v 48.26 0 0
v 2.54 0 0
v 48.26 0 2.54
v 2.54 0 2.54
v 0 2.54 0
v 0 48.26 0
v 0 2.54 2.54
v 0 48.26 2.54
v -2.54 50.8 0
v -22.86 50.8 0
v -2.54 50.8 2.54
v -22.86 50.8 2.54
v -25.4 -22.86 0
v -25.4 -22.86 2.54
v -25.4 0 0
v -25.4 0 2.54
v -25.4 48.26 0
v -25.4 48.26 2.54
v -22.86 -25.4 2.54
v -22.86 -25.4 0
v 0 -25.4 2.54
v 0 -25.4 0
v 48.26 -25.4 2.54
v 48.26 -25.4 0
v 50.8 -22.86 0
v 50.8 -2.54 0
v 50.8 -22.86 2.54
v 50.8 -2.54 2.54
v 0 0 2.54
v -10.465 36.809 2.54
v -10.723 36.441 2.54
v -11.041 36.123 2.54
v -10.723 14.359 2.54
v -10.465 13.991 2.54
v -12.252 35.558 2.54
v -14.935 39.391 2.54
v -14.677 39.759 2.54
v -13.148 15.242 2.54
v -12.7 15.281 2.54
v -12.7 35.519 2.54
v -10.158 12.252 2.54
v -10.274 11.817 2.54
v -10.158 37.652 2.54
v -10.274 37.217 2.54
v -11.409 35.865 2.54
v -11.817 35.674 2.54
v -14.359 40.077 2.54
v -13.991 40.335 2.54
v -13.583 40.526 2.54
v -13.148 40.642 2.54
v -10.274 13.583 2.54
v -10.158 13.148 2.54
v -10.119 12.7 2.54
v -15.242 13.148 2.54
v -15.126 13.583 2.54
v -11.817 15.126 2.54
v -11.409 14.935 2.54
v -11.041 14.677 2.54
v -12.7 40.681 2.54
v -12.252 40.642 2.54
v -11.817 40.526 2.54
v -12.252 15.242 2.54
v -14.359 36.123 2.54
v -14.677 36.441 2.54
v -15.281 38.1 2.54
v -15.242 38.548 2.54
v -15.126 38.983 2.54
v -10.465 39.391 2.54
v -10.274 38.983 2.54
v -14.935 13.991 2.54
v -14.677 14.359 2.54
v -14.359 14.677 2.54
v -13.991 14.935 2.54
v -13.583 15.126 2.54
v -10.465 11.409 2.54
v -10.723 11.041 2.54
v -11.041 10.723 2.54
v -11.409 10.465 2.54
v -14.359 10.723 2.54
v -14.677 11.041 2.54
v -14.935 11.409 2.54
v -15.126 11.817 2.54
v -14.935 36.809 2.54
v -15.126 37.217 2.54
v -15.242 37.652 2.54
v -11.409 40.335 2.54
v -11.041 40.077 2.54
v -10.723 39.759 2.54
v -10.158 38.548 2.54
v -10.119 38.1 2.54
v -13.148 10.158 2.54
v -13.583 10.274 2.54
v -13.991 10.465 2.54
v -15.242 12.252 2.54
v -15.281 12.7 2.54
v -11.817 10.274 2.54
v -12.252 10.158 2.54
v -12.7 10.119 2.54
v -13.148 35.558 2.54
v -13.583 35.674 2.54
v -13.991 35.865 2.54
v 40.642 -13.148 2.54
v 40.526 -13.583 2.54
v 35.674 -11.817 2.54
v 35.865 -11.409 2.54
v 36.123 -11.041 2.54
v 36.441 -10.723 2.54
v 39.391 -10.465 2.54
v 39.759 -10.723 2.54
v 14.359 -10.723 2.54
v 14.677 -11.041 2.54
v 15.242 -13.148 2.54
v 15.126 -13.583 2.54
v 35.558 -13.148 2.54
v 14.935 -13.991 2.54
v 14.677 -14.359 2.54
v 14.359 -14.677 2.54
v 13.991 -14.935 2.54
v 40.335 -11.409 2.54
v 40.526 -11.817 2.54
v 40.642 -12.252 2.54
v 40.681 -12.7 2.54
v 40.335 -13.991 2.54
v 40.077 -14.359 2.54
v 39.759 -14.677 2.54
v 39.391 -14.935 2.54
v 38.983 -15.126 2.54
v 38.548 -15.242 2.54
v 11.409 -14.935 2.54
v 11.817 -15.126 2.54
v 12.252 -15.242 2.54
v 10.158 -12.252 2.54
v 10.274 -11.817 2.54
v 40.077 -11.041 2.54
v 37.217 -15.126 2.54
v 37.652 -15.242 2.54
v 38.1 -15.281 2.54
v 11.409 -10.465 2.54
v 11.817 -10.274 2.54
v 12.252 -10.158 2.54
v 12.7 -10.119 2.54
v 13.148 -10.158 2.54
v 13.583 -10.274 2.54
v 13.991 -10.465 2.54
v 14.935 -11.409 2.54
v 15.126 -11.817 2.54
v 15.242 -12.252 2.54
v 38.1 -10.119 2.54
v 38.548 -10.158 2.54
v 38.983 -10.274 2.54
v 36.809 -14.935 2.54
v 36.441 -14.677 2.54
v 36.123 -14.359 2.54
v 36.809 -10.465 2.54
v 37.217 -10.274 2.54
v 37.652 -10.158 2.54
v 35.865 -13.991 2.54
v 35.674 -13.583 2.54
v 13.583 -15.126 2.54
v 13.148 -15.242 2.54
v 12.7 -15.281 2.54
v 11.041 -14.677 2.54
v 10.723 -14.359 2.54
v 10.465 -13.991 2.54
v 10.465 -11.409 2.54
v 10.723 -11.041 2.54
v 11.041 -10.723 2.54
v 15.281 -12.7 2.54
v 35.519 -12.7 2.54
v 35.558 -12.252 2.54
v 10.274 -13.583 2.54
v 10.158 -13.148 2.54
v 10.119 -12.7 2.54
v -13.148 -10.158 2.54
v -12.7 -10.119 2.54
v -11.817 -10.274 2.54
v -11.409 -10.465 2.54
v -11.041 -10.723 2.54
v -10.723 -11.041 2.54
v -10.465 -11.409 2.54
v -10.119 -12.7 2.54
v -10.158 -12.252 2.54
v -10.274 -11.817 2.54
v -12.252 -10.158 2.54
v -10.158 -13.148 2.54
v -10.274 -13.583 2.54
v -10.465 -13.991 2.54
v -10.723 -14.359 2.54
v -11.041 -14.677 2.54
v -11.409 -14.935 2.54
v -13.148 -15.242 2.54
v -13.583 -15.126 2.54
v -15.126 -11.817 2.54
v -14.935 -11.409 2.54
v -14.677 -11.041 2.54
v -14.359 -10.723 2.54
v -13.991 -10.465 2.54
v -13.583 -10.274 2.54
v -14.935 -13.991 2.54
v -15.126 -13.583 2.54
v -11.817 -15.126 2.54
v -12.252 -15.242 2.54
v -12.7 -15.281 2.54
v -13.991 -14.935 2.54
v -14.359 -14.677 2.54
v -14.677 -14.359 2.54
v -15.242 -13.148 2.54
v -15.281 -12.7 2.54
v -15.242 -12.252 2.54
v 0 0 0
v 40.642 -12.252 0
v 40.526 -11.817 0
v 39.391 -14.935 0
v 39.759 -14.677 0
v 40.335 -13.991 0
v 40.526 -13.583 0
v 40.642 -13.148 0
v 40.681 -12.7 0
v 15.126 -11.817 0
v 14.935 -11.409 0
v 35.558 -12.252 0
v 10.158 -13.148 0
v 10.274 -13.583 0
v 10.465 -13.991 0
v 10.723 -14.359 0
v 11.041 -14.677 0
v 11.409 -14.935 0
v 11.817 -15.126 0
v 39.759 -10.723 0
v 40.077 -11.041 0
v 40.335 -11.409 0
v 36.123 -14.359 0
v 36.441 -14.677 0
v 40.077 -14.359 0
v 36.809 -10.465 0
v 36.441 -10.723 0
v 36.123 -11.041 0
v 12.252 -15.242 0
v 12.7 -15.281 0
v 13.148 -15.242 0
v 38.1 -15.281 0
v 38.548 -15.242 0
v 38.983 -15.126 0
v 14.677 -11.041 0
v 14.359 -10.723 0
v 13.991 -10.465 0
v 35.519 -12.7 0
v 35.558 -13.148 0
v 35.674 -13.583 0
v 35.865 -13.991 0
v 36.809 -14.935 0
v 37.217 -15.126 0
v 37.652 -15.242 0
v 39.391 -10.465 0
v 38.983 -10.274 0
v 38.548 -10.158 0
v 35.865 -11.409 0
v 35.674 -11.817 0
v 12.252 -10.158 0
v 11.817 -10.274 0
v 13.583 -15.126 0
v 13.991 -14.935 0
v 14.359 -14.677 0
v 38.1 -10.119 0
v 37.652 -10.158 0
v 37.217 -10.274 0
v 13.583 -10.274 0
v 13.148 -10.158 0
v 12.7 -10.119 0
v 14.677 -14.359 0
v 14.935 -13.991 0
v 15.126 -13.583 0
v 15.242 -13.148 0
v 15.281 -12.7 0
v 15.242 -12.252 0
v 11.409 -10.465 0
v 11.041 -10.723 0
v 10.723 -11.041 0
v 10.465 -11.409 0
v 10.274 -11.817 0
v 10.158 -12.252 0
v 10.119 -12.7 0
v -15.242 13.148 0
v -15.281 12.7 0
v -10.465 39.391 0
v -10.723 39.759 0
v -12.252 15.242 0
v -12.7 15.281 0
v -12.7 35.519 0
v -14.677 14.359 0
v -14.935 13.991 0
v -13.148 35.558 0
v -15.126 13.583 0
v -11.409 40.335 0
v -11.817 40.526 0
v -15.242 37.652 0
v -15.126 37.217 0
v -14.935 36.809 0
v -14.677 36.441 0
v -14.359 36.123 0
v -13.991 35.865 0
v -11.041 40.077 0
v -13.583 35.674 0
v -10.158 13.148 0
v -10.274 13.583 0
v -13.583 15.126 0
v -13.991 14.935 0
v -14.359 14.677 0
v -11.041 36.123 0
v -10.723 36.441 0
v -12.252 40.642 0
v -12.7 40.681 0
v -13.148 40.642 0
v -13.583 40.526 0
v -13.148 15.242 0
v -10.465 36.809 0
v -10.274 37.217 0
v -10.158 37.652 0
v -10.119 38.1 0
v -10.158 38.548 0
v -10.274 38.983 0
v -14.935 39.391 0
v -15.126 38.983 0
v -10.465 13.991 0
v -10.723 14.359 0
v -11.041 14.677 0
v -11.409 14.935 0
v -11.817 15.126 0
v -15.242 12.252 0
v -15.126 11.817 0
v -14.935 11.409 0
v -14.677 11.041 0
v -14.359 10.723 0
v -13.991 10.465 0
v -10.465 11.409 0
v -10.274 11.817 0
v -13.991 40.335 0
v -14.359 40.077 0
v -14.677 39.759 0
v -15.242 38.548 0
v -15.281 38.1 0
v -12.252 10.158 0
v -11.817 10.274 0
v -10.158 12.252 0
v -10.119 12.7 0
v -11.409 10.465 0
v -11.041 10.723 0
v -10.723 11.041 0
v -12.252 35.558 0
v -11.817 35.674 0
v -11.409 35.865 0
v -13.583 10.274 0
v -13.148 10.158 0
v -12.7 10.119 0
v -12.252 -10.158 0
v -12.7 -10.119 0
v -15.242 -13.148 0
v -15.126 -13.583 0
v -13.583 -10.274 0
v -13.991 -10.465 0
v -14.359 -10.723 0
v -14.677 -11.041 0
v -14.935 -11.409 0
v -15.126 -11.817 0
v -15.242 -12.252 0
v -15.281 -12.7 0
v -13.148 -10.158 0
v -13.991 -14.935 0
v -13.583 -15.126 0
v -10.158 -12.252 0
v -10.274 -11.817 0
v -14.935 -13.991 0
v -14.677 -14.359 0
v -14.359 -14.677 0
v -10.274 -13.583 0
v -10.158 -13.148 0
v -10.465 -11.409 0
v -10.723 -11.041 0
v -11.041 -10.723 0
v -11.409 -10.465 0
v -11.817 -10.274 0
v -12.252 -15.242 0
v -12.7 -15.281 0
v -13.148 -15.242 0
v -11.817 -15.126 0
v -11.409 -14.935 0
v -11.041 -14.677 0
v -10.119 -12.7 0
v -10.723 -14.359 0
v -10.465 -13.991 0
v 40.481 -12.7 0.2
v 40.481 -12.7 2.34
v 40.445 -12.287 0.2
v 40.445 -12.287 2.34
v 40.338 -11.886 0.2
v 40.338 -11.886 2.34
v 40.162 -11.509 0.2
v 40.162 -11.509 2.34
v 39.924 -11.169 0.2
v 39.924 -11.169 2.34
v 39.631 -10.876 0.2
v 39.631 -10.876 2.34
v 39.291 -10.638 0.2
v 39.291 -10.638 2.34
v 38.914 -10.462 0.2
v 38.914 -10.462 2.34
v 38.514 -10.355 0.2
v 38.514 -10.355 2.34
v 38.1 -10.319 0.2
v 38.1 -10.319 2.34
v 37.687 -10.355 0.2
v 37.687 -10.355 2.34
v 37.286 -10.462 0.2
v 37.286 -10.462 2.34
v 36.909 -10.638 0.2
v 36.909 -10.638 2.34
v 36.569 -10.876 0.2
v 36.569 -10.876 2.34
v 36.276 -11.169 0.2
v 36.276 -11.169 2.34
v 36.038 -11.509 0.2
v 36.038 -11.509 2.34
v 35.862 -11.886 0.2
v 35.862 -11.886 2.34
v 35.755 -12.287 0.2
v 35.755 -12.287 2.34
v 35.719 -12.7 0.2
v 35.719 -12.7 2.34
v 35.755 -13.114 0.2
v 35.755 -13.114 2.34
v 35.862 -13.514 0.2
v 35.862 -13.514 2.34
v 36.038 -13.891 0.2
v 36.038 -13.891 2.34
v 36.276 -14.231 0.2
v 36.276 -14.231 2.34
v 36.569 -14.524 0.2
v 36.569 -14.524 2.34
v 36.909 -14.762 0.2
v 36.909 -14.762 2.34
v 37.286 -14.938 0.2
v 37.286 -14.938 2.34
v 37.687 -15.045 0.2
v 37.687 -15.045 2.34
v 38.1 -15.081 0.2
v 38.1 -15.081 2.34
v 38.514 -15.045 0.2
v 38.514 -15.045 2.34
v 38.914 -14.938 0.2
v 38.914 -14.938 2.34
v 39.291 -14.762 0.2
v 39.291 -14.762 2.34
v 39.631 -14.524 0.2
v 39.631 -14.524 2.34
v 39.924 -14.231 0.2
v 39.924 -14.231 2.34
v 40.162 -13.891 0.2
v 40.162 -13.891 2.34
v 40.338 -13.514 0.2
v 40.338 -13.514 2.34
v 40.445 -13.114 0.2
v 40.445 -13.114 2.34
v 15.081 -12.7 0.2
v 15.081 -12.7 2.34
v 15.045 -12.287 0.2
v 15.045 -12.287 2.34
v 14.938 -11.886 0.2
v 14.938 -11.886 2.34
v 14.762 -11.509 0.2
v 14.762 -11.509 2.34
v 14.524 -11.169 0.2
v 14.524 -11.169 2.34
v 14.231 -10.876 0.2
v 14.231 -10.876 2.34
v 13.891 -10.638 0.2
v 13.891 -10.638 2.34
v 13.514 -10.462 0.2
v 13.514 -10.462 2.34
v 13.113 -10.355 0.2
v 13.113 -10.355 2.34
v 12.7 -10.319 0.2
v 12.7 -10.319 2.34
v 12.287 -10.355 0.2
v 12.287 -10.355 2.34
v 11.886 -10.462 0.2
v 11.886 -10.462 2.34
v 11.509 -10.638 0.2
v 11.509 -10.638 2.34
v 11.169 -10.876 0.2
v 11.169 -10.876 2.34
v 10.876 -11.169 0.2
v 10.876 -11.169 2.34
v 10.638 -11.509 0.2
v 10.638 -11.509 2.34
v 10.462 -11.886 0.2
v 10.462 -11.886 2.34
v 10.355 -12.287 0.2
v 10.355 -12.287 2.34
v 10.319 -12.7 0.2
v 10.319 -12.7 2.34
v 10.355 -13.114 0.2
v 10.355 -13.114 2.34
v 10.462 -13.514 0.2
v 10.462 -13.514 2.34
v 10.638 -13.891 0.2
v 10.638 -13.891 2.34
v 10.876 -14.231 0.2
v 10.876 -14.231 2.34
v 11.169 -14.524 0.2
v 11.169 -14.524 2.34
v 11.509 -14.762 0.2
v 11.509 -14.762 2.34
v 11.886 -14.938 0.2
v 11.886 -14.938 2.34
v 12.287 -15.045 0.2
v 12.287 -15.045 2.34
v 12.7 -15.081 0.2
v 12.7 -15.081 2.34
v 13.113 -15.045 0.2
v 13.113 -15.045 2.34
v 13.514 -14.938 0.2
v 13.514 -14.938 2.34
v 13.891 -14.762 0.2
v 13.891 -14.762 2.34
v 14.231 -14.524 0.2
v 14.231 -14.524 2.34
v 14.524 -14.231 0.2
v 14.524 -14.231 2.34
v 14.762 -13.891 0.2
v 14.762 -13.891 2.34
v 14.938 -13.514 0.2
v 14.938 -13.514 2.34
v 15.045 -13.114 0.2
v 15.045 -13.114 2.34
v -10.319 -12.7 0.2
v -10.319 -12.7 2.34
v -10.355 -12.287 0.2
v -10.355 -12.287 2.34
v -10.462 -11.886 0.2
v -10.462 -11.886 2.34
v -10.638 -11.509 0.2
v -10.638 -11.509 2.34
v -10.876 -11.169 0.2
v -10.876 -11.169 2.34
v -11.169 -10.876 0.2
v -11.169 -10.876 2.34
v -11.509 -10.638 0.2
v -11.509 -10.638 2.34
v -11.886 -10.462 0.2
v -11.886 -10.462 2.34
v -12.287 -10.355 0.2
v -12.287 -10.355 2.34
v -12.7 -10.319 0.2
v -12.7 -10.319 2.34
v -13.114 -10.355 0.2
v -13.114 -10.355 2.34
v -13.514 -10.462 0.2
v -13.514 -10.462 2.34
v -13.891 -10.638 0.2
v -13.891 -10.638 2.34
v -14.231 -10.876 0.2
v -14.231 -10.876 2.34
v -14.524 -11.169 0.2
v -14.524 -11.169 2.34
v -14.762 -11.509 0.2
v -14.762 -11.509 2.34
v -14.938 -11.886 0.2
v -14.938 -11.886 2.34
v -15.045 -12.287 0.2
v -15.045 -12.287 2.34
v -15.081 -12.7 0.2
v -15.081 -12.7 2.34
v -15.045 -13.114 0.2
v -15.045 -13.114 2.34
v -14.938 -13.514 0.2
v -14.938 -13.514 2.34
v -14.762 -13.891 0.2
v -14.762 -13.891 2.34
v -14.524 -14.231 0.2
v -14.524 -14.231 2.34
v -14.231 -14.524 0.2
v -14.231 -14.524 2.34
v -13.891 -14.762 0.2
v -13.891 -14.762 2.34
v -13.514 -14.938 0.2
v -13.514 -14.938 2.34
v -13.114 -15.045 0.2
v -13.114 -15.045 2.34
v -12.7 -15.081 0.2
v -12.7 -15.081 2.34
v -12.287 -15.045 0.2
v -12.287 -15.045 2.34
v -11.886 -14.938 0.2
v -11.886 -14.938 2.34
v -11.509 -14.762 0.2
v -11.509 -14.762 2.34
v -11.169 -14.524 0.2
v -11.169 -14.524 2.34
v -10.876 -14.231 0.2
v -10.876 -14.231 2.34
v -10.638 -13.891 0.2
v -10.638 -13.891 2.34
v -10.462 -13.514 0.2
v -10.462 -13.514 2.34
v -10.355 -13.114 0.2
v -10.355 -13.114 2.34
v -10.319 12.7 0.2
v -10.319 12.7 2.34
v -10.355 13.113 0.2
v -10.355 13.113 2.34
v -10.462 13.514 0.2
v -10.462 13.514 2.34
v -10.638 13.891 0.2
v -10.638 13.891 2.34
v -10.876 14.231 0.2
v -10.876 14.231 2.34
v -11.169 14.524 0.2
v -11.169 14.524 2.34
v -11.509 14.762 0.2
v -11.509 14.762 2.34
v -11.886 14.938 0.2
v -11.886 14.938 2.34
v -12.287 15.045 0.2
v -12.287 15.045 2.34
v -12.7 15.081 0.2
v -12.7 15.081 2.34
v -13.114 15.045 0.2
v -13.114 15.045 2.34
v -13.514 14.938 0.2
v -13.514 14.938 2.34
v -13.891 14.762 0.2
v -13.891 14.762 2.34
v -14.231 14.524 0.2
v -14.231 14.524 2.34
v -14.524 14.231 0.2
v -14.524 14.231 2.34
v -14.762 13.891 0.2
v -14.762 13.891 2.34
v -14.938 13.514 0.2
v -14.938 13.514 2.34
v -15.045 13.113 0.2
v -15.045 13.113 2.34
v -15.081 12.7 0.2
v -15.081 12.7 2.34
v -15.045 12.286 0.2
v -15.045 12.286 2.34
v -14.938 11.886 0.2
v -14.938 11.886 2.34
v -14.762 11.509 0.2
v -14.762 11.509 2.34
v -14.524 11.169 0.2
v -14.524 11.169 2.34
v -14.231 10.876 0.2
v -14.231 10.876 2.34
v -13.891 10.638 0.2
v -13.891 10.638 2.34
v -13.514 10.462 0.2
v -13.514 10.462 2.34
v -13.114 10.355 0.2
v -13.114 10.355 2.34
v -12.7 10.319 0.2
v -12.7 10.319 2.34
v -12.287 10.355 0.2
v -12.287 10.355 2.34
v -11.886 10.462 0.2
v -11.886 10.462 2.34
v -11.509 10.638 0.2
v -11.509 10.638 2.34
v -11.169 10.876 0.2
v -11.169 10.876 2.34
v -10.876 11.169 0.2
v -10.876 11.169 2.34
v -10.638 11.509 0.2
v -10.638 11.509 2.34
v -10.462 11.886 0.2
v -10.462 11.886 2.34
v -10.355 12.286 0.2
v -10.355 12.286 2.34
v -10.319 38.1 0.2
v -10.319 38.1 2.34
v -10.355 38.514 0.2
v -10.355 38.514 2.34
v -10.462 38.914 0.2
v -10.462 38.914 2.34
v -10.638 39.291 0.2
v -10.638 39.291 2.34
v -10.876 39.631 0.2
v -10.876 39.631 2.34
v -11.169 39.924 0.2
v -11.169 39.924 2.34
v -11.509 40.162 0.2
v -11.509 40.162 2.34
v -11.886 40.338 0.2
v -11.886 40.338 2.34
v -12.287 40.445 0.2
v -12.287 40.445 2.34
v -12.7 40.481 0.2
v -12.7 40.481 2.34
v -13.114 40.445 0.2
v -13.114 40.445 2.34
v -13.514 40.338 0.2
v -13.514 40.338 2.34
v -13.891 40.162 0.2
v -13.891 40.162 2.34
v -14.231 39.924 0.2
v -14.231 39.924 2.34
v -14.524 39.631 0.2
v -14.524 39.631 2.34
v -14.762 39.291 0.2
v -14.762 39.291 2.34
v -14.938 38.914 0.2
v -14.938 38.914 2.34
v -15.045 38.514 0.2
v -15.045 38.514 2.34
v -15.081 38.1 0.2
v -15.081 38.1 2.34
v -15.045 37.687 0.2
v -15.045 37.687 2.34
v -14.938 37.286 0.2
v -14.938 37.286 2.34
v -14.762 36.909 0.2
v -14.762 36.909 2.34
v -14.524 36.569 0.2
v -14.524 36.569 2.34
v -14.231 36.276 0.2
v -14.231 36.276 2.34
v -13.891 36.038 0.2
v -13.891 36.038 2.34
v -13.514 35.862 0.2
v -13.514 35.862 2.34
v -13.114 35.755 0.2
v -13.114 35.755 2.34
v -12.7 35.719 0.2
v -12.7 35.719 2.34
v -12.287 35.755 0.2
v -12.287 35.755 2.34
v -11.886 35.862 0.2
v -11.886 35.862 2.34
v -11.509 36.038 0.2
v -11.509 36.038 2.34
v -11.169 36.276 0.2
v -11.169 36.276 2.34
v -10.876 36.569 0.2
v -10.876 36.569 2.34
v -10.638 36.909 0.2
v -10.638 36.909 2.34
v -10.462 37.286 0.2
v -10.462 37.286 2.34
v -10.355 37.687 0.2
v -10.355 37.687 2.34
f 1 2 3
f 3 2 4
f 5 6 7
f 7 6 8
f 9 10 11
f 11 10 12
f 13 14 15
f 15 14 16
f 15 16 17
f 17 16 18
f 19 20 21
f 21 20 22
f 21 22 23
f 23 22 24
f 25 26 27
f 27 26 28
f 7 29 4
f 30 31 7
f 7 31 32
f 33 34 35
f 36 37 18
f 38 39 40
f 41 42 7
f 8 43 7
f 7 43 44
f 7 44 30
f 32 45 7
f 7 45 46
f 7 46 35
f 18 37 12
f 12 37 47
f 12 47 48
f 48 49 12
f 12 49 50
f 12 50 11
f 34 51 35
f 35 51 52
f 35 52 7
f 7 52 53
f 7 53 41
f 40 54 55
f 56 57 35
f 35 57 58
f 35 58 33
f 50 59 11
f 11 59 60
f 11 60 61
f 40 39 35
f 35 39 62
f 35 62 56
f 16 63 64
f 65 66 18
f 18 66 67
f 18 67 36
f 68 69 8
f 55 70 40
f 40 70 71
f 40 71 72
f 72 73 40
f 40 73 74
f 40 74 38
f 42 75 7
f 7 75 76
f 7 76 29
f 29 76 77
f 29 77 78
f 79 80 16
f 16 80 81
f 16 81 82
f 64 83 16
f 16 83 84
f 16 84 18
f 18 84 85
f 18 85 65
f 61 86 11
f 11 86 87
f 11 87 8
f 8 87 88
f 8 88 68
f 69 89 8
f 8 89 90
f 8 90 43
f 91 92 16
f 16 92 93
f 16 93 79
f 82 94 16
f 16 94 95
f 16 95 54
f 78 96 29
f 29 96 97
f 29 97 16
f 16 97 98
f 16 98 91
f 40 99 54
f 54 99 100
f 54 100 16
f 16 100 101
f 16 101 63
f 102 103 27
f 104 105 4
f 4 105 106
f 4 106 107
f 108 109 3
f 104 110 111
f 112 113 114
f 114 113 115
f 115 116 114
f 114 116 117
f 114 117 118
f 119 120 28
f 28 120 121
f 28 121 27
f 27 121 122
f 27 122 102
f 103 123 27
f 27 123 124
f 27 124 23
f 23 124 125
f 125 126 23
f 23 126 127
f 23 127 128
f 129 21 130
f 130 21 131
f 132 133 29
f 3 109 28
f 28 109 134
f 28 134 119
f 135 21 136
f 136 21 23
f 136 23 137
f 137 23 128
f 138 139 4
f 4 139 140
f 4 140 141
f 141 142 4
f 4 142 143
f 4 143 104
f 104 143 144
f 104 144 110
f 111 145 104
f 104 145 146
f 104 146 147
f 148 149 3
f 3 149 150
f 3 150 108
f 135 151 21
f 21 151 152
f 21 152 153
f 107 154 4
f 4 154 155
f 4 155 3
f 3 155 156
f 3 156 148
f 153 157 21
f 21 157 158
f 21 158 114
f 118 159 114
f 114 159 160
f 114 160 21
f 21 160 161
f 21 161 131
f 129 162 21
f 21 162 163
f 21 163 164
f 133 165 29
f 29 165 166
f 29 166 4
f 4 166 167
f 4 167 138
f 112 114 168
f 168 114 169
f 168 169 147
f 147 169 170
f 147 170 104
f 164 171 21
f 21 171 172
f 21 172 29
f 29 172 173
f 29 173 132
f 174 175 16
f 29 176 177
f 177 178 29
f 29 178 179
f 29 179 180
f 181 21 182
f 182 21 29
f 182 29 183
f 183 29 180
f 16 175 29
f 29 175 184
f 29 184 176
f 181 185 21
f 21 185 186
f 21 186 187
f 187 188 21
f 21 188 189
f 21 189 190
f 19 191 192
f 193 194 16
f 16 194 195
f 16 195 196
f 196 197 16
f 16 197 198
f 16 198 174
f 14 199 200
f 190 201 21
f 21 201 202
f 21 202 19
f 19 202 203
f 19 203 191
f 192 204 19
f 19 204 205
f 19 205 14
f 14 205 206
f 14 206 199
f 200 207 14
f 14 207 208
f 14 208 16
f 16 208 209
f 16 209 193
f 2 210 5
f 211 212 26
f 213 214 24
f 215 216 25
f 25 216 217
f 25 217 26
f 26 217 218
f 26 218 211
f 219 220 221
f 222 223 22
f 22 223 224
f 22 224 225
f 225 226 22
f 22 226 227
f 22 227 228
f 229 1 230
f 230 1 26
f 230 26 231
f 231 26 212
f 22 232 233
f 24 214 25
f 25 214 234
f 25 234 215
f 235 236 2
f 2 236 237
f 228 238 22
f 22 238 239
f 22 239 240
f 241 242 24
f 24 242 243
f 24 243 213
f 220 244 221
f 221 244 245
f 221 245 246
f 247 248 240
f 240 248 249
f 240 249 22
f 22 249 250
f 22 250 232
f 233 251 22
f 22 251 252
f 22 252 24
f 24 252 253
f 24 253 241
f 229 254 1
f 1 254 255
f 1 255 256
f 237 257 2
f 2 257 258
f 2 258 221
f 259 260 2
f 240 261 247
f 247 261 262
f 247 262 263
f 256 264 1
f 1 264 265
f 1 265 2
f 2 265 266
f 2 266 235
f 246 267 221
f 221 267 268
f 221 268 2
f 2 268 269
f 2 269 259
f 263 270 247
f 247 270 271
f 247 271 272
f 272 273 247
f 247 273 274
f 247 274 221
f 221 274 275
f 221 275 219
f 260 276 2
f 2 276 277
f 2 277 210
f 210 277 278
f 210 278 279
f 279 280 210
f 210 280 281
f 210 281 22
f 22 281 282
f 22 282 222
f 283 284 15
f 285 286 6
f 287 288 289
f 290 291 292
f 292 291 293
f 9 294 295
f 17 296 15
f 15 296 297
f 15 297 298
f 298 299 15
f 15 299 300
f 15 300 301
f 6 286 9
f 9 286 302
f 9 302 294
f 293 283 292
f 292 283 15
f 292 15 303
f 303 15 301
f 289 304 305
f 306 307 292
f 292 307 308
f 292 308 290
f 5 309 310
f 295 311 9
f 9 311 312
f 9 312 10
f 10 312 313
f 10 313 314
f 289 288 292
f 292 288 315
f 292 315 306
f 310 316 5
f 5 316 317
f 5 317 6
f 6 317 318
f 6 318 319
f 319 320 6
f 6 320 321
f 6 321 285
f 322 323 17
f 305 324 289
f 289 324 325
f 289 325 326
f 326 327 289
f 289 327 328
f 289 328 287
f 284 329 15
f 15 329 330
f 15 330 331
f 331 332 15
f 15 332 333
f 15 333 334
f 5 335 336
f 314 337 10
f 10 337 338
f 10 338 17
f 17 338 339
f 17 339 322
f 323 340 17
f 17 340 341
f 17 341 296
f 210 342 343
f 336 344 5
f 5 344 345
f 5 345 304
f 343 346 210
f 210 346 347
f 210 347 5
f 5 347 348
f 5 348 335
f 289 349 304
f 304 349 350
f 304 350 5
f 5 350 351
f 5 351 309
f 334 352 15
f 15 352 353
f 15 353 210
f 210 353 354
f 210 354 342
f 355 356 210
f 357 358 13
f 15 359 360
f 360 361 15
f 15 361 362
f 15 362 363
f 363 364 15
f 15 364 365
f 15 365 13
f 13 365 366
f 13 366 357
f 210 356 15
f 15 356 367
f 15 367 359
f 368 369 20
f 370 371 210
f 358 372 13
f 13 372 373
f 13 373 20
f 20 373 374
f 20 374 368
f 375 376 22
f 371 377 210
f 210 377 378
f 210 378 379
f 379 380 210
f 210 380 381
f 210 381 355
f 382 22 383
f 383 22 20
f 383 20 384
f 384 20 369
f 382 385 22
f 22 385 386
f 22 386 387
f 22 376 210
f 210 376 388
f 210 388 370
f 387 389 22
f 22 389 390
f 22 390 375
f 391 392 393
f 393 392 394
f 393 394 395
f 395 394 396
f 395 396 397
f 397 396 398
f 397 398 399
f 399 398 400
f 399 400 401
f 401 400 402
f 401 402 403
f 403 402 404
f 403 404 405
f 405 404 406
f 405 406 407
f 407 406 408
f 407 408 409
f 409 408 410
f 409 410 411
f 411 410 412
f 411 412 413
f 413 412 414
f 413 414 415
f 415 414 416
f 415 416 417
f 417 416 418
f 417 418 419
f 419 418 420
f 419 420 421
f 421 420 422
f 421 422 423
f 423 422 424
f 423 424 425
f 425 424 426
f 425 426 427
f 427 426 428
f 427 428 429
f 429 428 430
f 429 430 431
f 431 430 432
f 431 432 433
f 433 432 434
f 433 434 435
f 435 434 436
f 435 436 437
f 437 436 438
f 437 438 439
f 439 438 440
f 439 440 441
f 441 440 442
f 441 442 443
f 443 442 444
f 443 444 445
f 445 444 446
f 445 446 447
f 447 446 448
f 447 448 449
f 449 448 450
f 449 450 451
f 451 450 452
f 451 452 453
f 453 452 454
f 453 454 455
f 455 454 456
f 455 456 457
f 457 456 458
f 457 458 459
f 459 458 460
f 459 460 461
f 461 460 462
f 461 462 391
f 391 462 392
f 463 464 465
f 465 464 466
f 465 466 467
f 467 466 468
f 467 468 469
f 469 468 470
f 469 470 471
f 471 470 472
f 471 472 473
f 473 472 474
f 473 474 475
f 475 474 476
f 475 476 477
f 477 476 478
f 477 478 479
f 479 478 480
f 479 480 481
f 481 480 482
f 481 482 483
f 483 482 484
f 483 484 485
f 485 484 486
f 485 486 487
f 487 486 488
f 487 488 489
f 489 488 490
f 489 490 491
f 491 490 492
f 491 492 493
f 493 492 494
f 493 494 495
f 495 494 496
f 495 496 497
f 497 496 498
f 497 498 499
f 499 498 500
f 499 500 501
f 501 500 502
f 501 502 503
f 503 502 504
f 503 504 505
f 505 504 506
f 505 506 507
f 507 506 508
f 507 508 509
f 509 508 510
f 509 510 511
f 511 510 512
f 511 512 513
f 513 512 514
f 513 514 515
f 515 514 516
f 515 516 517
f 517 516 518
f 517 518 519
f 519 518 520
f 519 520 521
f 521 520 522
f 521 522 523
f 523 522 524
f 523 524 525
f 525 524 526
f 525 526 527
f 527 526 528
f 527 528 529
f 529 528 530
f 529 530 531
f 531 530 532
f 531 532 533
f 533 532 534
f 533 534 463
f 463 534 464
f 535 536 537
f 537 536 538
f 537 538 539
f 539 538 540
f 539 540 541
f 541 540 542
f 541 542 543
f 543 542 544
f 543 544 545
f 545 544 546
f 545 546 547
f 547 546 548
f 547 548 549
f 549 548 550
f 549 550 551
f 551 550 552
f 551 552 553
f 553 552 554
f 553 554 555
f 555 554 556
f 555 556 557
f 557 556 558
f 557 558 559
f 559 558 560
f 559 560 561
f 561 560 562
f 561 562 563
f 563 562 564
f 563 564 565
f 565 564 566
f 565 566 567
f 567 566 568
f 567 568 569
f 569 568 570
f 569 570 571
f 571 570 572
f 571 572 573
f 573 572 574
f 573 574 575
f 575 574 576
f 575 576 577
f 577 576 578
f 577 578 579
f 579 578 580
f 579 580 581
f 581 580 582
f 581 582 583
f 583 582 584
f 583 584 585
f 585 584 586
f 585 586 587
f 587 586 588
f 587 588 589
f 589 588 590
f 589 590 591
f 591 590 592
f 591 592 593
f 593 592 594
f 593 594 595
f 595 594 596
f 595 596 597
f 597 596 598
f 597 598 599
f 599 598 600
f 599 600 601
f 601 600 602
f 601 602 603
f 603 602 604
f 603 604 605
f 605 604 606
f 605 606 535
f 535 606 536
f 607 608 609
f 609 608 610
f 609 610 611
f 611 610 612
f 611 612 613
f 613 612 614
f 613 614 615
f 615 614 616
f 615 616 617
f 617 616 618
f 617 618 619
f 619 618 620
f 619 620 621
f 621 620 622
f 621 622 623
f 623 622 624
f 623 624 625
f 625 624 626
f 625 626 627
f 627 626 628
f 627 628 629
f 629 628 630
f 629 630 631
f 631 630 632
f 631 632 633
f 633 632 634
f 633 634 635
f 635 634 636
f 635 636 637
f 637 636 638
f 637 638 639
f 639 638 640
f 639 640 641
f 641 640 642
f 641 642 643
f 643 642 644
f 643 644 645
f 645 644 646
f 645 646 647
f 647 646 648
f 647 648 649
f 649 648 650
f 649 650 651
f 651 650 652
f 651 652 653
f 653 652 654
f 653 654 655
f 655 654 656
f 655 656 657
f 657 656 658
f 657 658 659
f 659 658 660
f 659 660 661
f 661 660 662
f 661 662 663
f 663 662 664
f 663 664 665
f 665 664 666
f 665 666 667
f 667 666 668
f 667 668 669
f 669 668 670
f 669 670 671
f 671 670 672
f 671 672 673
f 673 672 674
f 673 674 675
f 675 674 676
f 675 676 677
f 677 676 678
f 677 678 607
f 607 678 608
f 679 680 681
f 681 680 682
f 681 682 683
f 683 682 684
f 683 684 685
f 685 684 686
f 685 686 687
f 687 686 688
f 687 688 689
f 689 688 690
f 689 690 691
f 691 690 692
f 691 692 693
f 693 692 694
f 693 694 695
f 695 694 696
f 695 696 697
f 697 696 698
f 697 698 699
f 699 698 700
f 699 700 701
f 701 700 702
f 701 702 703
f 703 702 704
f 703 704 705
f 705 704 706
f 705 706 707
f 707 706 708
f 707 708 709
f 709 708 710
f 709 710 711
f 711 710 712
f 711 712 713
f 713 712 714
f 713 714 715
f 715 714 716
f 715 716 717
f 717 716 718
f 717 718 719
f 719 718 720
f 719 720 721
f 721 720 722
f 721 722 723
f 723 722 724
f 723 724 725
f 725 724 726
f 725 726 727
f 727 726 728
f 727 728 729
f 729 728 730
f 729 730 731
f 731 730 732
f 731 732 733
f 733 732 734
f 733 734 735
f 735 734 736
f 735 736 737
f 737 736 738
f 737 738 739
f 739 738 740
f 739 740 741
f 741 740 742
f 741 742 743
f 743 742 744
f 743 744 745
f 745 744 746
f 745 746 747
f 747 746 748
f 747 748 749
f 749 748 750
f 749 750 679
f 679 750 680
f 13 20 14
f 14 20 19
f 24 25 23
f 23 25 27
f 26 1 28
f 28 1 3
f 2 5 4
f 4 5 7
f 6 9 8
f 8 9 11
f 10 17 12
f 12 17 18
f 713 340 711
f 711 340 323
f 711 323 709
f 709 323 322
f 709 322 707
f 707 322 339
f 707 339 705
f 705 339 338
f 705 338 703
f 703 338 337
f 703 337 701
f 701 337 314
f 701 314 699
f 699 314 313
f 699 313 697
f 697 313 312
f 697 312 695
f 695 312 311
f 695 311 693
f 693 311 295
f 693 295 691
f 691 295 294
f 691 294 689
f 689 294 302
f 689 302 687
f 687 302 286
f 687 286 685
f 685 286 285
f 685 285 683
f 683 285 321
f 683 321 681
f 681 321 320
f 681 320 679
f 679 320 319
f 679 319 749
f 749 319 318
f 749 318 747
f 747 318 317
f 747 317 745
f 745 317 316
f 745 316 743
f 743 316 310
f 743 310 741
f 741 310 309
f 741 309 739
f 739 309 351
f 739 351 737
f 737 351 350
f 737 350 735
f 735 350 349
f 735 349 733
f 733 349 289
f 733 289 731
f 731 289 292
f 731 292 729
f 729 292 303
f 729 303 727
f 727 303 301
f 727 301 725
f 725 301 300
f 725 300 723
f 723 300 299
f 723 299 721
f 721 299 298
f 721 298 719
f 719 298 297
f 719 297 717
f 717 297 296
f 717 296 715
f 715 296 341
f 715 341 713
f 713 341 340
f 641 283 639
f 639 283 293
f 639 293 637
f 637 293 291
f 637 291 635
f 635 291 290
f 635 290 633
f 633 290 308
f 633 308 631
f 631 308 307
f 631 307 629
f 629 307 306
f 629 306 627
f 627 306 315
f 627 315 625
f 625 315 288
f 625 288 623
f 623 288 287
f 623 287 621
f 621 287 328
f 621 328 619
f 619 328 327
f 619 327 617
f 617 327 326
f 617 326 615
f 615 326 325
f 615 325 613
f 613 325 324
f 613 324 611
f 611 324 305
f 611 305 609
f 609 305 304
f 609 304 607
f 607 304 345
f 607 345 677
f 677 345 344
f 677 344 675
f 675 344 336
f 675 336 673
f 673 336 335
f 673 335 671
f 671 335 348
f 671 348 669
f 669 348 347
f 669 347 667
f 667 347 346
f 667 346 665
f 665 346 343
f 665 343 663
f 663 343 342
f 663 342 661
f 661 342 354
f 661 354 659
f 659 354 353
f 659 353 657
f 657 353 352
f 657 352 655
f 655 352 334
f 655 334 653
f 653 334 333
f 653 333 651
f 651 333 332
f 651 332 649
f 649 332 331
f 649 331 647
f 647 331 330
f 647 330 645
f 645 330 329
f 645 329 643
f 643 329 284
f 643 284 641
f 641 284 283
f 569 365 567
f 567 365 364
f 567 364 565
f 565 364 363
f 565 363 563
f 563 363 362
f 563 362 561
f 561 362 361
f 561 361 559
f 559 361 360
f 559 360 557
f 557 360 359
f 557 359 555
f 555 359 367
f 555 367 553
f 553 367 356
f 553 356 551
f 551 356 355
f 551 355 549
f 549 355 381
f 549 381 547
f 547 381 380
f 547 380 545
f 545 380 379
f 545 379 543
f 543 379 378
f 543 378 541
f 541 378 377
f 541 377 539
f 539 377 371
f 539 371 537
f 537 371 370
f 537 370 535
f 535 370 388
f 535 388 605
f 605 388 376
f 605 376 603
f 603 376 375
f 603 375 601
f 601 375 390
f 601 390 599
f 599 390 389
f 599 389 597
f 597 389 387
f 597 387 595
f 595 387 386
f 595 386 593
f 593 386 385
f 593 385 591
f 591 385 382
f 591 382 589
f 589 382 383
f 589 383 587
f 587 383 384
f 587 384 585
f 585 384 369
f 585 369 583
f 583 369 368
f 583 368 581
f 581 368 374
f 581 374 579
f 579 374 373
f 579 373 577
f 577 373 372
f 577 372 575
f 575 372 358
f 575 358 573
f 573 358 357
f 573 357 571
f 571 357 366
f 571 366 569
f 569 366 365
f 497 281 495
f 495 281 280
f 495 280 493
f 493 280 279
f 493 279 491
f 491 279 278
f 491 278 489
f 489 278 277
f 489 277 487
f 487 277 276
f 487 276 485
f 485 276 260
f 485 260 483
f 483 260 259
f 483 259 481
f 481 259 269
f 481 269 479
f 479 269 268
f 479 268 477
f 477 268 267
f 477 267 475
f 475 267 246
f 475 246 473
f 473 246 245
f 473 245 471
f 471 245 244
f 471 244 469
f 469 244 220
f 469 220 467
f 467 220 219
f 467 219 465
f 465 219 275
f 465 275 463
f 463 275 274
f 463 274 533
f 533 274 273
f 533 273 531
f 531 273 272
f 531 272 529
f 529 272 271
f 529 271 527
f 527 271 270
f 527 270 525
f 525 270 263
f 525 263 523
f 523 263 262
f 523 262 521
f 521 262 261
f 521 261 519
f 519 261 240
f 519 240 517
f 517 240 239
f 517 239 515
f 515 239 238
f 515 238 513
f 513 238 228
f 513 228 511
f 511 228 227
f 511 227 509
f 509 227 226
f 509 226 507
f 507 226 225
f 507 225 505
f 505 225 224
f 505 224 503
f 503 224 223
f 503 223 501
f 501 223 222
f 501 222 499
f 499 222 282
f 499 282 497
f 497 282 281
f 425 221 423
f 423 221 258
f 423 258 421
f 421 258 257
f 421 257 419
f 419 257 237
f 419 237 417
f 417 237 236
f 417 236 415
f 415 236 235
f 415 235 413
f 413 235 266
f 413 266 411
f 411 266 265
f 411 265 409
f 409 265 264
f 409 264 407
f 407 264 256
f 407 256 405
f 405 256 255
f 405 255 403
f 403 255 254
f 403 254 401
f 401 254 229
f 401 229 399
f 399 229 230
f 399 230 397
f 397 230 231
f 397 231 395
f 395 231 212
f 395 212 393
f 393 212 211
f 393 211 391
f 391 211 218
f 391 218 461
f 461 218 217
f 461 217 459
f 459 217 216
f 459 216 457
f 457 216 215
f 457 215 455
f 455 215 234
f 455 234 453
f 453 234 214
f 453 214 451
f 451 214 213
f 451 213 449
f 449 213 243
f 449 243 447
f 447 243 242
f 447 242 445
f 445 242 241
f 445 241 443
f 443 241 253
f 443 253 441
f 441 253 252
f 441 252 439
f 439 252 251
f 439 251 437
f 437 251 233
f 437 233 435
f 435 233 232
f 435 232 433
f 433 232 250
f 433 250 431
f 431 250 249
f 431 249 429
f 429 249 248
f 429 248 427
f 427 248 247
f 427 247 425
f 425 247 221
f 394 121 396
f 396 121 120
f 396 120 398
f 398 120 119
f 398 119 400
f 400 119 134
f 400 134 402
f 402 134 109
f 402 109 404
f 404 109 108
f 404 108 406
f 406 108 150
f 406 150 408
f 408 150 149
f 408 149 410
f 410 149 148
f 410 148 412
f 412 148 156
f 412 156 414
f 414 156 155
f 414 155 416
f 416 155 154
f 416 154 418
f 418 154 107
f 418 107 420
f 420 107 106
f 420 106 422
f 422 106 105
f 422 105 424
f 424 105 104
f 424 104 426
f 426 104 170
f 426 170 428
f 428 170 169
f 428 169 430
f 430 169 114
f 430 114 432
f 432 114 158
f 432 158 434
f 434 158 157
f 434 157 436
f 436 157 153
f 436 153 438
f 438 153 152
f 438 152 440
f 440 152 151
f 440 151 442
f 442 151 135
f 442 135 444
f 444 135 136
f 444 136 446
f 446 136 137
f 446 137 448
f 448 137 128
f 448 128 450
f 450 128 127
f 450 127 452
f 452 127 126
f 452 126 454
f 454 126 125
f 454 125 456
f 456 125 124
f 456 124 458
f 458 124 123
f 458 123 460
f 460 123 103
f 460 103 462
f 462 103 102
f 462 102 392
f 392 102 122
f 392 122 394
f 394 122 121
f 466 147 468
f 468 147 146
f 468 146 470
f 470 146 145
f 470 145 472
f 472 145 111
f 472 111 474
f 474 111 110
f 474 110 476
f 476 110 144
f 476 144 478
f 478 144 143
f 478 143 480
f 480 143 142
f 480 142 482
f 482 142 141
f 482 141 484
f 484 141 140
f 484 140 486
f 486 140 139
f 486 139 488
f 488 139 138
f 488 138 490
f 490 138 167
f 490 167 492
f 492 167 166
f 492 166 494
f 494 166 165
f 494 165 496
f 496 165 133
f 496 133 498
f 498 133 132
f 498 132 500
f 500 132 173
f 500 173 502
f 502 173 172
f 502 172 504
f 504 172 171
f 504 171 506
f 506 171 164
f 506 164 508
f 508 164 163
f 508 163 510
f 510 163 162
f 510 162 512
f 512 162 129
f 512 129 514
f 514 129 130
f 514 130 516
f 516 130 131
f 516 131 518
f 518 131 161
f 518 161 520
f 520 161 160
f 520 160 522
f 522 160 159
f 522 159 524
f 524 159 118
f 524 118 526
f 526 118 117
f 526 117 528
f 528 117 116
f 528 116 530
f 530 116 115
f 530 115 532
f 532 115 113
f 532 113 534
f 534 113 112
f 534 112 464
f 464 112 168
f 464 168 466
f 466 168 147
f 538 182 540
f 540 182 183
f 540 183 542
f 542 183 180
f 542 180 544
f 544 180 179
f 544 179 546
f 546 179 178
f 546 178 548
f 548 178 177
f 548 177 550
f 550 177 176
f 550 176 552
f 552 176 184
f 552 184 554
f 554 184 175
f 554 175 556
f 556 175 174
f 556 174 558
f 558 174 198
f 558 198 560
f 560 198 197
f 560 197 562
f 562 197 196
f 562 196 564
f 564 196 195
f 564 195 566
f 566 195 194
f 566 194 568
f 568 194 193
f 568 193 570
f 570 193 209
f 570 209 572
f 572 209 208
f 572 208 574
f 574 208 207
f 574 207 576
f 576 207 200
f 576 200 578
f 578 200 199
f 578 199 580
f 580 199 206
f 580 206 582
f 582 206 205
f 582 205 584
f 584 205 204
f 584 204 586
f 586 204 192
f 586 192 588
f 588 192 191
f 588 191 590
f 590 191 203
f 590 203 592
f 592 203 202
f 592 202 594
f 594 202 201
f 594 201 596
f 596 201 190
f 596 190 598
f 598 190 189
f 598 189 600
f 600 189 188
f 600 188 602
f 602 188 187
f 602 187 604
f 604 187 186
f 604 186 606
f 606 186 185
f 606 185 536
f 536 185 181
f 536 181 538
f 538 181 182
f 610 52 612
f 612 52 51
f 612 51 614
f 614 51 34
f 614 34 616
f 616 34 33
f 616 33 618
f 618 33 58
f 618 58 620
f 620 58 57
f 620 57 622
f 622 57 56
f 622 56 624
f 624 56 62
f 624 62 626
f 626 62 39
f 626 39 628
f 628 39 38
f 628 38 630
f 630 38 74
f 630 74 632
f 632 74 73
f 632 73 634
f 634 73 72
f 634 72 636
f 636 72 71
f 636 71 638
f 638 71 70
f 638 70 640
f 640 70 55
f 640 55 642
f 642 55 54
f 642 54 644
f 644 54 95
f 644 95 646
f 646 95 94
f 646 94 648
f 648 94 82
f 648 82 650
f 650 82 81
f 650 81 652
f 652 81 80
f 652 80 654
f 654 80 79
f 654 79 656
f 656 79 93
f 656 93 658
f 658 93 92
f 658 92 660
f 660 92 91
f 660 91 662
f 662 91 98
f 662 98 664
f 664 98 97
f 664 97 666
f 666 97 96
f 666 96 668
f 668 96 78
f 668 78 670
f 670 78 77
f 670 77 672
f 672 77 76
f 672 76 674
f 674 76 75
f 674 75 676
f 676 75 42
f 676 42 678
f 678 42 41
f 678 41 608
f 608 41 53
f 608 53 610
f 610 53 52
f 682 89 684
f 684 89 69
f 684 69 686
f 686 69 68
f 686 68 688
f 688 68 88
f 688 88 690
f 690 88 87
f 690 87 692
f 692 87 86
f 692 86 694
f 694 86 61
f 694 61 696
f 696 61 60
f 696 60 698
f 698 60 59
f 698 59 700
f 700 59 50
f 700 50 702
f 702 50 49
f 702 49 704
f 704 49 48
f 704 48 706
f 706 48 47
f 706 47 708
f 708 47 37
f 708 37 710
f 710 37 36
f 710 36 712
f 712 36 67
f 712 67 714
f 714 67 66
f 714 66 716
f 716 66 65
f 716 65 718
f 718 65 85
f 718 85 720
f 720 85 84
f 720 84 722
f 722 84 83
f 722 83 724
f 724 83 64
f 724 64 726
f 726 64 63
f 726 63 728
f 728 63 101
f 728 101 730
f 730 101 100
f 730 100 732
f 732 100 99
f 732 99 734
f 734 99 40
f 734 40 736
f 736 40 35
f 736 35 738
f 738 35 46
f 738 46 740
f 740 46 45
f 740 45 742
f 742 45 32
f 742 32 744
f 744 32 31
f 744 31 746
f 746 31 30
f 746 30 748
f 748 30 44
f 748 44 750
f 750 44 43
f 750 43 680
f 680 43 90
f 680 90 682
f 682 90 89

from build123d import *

# Parameters (mm, degrees)
BOSS_EXTRUDE1_DEPTH            = 2.54
F_3_16_0_1875_DIAMETER_HOLE1_D = 4.7625
CHAMFER1_SIZE                  = 2.54
CHAMFER2_SIZE                  = 0.2


with BuildPart() as part:
    # Sketch1 → Boss-Extrude1 (new body)
    with BuildSketch(Plane.XY):
        Polygon((0, 0), (0, 50.8), (-25.4, 50.8), (-25.4, 0), (-25.4, -25.4), (50.8, -25.4), (50.8, 0), align=None)
    extrude(amount=BOSS_EXTRUDE1_DEPTH)

    # 3/16 (0.1875) Diameter Hole1 (through all)
    with Locations(Plane.XY.offset(2.54)):
        with Locations((-12.7, 38.1), (-12.7, 12.7), (-12.7, -12.7), (12.7, -12.7), (38.1, -12.7)):
            Hole(F_3_16_0_1875_DIAMETER_HOLE1_D / 2)

    # Chamfer1
    chamfer1_edges = [part.edges().sort_by_distance(p)[0] for p in [
        (50.8, 0, 1.27),
        (50.8, -25.4, 1.27),
        (-25.4, -25.4, 1.27),
        (-25.4, 50.8, 1.27),
        (0, 50.8, 1.27),
        (0, 0, 1.27),
    ]]
    chamfer(chamfer1_edges, length=CHAMFER1_SIZE)

    # Chamfer2
    chamfer2_edges = [part.edges().sort_by_distance(p)[0] for p in [
        (40.48125, -12.7, 2.54),
        (40.48125, -12.7, 0),
        (15.08125, -12.7, 2.54),
        (15.08125, -12.7, 0),
        (-10.31875, -12.7, 2.54),
        (-10.31875, -12.7, 0),
        (-10.31875, 12.7, 2.54),
        (-10.31875, 12.7, 0),
        (-10.31875, 38.1, 2.54),
        (-10.31875, 38.1, 0),
    ]]
    chamfer(chamfer2_edges, length=CHAMFER2_SIZE)


solid = part.part
